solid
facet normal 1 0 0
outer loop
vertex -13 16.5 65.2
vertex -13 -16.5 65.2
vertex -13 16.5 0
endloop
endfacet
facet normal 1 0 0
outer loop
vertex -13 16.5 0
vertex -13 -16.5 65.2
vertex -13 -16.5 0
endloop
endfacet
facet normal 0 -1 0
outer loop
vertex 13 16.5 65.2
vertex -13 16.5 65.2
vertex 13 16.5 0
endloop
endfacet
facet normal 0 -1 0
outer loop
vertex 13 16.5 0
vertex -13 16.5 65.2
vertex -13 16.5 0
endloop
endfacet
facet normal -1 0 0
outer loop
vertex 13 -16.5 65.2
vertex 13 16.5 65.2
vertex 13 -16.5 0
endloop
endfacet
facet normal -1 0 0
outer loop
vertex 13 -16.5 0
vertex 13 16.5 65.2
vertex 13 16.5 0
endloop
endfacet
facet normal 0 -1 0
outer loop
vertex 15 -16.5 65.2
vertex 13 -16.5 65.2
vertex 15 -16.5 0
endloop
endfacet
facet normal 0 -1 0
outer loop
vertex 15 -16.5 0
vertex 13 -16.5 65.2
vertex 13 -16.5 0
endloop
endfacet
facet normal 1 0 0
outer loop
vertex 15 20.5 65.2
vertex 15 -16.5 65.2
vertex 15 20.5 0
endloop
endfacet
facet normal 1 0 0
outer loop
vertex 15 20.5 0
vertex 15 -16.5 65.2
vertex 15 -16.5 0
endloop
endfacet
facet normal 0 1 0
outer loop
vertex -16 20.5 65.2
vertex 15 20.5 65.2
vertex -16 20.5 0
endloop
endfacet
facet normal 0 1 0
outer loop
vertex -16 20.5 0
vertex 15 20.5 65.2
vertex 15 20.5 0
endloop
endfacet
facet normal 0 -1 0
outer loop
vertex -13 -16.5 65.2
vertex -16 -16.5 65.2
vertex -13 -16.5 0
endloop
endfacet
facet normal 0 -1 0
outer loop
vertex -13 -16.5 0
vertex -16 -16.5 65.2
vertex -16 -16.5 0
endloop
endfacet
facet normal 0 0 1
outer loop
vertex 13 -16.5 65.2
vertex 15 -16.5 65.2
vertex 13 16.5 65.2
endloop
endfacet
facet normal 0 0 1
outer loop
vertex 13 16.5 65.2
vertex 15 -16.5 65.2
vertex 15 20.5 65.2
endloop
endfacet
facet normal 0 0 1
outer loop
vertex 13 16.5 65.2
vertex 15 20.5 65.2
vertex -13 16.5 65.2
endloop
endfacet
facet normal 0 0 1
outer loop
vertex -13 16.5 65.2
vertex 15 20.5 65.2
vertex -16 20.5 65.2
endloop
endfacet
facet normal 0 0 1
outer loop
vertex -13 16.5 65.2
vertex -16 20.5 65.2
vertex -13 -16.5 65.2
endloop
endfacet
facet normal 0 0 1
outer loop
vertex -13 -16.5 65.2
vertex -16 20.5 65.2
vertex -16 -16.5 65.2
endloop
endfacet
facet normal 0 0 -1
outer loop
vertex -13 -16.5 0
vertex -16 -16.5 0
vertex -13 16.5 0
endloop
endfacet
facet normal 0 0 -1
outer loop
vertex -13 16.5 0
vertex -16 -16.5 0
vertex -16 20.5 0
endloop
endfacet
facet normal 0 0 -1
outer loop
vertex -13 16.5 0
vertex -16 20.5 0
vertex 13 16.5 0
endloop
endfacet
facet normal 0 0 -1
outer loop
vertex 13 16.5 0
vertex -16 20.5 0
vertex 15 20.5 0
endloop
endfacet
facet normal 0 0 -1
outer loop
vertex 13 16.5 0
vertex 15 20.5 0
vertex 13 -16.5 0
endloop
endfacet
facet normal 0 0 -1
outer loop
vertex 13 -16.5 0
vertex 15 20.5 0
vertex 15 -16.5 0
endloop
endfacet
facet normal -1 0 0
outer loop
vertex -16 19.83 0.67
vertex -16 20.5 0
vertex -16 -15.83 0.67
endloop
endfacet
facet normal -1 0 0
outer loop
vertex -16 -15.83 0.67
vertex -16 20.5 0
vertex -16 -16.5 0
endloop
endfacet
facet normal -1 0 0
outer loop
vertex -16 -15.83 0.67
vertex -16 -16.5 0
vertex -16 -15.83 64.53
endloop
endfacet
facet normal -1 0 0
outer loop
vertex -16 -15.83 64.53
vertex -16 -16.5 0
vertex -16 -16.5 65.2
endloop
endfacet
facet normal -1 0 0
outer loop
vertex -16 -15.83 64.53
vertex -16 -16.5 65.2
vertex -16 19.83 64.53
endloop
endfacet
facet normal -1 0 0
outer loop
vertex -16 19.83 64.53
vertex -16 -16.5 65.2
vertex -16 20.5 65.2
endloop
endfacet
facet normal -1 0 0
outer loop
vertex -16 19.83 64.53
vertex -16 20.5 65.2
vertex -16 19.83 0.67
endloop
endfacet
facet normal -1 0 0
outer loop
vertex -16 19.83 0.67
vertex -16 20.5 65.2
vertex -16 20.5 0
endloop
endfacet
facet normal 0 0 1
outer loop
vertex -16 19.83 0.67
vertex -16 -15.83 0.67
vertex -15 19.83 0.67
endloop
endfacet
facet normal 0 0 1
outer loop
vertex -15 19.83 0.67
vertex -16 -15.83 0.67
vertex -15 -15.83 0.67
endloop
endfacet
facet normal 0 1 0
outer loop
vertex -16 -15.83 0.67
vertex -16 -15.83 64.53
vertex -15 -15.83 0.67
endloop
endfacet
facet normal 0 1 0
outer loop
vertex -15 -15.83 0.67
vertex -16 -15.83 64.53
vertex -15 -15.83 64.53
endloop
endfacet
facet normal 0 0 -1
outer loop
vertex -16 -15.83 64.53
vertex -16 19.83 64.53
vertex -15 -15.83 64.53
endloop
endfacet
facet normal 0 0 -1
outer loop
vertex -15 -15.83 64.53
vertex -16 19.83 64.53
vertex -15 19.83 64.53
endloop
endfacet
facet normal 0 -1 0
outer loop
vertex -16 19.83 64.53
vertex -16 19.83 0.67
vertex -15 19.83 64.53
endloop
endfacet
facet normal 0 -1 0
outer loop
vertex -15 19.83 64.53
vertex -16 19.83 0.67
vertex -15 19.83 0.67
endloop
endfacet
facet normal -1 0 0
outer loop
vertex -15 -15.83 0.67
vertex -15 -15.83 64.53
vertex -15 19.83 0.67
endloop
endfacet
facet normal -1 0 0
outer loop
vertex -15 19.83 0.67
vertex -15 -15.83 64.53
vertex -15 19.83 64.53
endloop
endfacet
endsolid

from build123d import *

# Parameters (mm, degrees)
FRONT_PROFILE_DEPTH  = 65.2
SKETCH3_W            = 65.2
SKETCH3_H            = 37
SKETCH3_W_2          = 63.86
SKETCH3_H_2          = 35.66
HOUSING_SNAPON_DEPTH = 1


with BuildPart() as part:
    # Sketch2 → Front Profile (new body)
    with BuildSketch(Plane.XY):
        Polygon((-13, -16.5), (-15, -16.5), (-15, 20.5), (15, 20.5), (15, -16.5), (13, -16.5), (13, 16.5), (-13, 16.5), align=None)
    extrude(amount=FRONT_PROFILE_DEPTH)

    # Sketch3 → Housing SnapOn (add)
    with BuildSketch(Plane.ZY.offset(15)):
        with Locations((32.6, 2)):
            Rectangle(SKETCH3_W, SKETCH3_H)
        with Locations((32.6, 2)):
            Rectangle(SKETCH3_W_2, SKETCH3_H_2, mode=Mode.SUBTRACT)
    extrude(amount=HOUSING_SNAPON_DEPTH)


solid = part.part
